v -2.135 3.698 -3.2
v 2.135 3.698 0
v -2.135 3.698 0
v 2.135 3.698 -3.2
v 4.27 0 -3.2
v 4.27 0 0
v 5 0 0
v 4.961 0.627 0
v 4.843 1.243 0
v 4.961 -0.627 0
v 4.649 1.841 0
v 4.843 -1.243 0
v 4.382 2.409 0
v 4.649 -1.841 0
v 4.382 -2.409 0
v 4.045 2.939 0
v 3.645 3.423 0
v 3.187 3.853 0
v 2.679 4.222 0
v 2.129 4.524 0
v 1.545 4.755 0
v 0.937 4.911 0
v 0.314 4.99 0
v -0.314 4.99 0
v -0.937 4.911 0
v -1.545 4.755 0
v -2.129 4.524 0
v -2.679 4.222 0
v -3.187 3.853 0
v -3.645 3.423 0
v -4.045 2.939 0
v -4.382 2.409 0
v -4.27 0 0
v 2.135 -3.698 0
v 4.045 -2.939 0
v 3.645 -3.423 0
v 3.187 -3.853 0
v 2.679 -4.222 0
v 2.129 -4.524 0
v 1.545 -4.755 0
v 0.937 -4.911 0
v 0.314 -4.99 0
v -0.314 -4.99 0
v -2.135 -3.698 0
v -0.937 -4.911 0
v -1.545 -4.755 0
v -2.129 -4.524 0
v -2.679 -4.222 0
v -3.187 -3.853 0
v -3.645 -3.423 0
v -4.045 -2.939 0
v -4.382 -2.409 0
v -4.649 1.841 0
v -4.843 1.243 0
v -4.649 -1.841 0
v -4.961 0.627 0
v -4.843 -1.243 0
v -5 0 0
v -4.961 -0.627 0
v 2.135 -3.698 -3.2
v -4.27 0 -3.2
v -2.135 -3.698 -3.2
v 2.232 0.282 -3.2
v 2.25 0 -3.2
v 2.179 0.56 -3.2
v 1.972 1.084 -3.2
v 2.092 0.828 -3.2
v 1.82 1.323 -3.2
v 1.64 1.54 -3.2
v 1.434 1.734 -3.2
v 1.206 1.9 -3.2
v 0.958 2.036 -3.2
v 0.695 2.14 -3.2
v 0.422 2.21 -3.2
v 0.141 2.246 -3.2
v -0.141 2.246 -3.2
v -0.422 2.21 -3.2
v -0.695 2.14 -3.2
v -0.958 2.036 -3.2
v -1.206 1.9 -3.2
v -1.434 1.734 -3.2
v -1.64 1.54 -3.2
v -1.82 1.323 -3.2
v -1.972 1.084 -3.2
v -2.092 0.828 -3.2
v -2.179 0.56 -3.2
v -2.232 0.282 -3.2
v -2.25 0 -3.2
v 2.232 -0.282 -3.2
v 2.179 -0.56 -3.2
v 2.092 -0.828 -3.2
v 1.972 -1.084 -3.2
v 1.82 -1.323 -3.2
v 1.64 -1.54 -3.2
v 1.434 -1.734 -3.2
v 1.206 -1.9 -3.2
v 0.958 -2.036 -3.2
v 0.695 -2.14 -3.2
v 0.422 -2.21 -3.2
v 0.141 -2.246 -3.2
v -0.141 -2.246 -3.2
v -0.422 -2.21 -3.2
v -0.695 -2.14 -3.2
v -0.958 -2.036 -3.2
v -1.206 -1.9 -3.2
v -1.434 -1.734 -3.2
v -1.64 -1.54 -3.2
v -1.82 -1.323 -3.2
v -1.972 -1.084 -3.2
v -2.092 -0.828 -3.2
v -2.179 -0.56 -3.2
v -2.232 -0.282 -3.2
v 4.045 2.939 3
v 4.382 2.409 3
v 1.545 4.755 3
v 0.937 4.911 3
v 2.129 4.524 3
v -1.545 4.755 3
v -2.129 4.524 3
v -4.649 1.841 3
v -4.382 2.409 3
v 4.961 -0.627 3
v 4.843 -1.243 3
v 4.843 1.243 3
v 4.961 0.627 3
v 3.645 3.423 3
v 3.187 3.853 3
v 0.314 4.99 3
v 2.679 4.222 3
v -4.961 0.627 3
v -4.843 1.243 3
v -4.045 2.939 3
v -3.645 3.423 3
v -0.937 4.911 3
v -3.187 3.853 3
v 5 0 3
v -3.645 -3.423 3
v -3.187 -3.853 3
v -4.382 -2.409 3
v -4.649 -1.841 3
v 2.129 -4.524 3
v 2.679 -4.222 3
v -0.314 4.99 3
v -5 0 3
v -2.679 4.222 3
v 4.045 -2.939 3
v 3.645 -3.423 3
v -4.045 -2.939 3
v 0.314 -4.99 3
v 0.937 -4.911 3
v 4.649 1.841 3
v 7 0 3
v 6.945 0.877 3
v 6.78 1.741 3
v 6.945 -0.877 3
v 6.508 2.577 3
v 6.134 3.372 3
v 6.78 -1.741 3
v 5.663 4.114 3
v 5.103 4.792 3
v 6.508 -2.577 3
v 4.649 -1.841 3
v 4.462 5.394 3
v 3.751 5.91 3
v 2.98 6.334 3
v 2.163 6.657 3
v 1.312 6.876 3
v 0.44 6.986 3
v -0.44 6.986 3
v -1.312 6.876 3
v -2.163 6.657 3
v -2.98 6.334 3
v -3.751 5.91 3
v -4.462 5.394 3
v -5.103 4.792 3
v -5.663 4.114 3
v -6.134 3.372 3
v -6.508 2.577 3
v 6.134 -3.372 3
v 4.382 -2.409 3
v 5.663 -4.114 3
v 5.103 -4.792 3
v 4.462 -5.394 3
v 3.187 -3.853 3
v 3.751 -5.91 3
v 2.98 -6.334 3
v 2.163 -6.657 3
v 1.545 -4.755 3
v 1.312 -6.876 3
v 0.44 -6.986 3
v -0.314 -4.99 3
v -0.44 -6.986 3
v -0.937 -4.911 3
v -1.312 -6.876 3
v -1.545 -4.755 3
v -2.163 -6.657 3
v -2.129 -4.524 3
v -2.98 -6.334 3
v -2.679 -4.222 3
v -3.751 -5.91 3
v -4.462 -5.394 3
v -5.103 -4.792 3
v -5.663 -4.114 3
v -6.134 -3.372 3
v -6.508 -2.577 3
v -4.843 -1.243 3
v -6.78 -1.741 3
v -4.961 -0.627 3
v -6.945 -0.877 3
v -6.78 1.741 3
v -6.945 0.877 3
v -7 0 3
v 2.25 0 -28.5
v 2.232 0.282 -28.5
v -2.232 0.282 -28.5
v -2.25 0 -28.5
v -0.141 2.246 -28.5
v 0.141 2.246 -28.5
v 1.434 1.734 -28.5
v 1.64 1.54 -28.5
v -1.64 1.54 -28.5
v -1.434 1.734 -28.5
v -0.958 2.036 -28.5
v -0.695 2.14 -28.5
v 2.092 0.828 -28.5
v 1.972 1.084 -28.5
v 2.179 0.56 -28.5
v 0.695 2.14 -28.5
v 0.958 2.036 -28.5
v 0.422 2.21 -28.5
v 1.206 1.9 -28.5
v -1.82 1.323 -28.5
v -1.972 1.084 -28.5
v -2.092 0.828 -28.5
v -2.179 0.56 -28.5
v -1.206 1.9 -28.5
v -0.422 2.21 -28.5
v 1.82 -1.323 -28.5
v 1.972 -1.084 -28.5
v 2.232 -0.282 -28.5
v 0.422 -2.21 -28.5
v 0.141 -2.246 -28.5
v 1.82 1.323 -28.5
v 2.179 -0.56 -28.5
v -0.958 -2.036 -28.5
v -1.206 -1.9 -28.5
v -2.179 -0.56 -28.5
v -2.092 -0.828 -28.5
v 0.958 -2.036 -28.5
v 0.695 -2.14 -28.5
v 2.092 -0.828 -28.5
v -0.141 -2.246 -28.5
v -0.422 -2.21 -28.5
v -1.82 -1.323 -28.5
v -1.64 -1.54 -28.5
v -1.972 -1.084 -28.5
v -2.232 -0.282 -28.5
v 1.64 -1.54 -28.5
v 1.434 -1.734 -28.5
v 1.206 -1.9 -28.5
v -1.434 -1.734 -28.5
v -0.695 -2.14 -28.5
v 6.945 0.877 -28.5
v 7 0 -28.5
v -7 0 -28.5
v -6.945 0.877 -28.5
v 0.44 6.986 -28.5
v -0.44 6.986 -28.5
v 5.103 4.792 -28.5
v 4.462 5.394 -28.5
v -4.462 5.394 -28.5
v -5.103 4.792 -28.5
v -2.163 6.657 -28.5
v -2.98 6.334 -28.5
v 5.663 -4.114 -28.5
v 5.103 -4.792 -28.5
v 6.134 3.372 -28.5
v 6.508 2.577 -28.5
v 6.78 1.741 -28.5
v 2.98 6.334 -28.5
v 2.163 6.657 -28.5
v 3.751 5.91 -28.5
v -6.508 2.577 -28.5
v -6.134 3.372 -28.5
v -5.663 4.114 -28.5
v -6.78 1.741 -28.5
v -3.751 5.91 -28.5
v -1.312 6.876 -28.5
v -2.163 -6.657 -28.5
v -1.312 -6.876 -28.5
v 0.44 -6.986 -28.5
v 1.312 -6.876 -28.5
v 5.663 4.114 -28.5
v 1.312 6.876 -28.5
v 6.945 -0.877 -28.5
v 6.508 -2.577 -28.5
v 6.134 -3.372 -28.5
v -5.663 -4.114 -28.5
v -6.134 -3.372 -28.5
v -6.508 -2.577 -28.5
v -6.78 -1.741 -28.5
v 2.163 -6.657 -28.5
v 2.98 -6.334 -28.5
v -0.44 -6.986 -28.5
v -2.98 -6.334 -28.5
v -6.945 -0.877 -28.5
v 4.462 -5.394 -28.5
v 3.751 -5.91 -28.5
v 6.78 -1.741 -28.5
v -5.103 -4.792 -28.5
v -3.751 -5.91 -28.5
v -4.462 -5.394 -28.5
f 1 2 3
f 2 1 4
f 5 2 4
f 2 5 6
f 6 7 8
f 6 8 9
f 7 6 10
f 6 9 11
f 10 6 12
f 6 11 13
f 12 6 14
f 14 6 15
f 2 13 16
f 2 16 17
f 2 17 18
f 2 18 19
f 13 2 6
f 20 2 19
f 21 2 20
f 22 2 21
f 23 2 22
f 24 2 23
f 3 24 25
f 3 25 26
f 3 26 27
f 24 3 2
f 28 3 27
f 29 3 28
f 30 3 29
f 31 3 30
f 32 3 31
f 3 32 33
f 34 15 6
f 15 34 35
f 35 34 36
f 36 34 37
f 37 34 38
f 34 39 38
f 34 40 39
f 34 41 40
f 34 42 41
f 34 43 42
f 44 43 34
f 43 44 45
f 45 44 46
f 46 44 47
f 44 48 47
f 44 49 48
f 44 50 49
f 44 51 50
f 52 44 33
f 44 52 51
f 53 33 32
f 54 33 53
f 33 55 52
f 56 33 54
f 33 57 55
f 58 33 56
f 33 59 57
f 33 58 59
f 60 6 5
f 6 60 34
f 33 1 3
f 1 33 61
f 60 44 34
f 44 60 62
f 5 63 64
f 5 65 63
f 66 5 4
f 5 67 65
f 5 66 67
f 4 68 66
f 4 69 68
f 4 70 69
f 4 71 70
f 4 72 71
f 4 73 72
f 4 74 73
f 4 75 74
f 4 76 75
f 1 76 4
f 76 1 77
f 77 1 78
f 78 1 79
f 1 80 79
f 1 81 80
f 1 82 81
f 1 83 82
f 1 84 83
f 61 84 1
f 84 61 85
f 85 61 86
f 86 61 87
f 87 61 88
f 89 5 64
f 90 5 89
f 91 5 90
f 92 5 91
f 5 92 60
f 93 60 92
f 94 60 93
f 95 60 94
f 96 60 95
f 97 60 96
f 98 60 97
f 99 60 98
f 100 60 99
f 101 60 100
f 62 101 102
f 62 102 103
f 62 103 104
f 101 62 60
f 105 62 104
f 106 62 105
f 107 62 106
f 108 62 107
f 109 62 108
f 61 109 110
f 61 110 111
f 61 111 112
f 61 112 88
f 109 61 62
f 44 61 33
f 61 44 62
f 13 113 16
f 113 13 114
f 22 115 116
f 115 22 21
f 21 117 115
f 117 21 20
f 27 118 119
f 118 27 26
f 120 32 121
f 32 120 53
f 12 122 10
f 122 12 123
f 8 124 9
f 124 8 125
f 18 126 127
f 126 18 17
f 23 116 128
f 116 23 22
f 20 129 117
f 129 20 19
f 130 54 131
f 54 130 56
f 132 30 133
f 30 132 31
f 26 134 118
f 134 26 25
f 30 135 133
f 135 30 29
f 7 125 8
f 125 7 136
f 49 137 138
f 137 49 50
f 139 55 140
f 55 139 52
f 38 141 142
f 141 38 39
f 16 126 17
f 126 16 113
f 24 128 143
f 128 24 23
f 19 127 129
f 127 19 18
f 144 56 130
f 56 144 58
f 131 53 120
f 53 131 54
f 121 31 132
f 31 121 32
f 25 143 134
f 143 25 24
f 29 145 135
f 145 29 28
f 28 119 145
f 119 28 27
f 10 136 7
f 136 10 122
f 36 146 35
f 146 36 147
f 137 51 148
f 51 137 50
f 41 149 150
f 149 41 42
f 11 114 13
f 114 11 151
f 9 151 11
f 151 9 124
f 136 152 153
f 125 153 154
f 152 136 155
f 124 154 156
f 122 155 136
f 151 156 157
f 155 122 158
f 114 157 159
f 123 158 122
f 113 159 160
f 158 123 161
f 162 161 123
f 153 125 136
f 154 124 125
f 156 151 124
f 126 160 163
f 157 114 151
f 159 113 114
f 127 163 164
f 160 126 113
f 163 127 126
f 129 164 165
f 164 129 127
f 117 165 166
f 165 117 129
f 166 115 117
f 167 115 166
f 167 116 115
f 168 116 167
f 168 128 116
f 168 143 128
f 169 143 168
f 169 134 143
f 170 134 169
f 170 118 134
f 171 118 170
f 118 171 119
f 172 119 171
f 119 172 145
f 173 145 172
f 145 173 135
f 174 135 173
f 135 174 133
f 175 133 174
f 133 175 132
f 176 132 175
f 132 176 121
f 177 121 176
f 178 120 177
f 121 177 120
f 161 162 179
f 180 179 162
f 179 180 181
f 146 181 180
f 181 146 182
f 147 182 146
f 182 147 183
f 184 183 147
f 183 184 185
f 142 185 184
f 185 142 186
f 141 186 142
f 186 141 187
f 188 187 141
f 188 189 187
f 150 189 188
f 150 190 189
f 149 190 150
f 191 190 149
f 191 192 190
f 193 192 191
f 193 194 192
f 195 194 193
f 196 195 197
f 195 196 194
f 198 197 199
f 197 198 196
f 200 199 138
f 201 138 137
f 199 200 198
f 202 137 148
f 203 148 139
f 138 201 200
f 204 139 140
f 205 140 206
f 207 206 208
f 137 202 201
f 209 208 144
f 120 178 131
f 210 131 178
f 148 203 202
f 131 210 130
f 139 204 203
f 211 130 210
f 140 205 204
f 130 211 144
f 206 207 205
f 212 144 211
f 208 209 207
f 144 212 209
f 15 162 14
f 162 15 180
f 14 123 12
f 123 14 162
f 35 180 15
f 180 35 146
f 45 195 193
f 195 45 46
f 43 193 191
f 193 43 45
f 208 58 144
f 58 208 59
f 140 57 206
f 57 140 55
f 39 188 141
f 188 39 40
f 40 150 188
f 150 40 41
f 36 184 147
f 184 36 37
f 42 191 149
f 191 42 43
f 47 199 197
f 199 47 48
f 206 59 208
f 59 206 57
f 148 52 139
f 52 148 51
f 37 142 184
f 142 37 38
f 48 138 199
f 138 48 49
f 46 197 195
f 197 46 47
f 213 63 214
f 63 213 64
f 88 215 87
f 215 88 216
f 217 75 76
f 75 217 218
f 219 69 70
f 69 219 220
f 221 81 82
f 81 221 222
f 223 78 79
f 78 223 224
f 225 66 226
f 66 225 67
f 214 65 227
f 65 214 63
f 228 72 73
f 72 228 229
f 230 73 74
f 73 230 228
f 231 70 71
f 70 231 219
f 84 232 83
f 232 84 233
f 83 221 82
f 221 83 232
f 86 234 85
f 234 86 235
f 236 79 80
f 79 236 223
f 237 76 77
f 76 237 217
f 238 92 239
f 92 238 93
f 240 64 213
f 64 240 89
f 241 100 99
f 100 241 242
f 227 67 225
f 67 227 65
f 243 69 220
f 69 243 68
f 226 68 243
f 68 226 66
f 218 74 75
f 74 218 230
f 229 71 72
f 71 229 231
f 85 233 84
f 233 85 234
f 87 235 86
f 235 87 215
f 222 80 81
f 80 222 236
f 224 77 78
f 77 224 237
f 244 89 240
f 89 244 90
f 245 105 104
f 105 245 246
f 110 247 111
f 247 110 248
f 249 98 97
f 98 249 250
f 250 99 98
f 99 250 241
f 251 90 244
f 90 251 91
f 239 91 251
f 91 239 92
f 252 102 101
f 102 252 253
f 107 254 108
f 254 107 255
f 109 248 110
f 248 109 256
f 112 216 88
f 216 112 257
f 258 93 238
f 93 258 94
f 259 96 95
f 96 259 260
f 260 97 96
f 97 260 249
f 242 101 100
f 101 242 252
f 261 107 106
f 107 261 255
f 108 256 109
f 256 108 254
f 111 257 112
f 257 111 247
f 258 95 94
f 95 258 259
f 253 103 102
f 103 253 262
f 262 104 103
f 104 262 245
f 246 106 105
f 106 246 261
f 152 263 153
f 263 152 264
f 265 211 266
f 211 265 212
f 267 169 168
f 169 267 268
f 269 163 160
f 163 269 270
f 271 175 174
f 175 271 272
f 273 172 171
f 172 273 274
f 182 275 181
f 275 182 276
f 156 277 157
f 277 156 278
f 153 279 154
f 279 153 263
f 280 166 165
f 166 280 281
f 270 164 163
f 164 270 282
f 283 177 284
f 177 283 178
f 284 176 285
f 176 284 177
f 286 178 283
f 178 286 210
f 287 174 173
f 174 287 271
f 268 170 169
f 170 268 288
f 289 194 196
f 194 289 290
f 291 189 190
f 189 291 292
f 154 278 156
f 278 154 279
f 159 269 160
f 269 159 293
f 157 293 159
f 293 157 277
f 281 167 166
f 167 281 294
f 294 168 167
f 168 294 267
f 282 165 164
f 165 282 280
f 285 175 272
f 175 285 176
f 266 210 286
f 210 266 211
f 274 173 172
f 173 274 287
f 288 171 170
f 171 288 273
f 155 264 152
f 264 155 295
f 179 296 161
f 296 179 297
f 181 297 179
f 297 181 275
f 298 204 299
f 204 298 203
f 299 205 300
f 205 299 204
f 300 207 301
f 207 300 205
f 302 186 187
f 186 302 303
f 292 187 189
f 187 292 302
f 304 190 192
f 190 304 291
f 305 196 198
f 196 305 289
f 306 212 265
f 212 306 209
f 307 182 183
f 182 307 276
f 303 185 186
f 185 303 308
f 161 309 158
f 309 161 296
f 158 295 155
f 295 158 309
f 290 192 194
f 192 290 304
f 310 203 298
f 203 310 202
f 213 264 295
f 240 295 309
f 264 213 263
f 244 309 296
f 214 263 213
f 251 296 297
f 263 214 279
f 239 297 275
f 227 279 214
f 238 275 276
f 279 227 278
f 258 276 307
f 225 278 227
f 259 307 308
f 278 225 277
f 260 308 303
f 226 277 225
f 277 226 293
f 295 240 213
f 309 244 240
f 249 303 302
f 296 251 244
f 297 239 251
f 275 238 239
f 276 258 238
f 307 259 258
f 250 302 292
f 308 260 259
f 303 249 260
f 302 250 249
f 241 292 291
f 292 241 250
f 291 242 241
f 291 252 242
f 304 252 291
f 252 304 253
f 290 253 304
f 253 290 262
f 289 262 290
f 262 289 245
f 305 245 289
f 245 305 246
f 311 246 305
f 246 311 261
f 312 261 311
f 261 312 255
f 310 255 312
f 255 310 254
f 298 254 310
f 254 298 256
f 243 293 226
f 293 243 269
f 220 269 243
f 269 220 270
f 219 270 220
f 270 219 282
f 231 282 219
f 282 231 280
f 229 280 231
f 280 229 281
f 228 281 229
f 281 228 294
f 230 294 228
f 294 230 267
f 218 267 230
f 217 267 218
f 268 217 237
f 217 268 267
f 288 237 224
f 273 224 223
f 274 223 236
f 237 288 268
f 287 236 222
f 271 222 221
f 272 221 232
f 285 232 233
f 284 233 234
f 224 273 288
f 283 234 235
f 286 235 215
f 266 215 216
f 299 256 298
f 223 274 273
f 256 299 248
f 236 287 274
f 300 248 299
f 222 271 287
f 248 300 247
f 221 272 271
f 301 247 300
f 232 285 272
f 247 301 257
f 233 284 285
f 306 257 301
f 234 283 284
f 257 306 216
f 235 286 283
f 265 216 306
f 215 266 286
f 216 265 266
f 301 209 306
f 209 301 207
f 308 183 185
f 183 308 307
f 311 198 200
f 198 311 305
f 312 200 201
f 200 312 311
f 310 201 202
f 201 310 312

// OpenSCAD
$fn = 50;

difference() {
	union() {
		translate(v = [0, 0, -28.5]) {
			cylinder(h = 31.5, r = 7.0);
		}
	}
	union() {
		translate(v = [0, 0, 0]) {
			rotate(a = [0, 0, 0]) {
				difference() {
					union() {
						translate(v = [0, 0, -3.2]) {
							linear_extrude(height = 3.2) {
								polygon(points = [[4.2698, 0.0], [2.1349000000000005, 3.697755269078796], [-2.134899999999999, 3.6977552690787965], [-4.2698, 5.228996902999369e-16], [-2.134900000000002, -3.6977552690787956], [2.1348999999999974, -3.697755269078798]]);
							}
						}
					}
					union();
				}
			}
		}
		#cylinder(h = 3, r = 5.0);
		#translate(v = [0, 0, -100.0]) {
			cylinder(h = 200, r = 2.25);
		}
	}
}
